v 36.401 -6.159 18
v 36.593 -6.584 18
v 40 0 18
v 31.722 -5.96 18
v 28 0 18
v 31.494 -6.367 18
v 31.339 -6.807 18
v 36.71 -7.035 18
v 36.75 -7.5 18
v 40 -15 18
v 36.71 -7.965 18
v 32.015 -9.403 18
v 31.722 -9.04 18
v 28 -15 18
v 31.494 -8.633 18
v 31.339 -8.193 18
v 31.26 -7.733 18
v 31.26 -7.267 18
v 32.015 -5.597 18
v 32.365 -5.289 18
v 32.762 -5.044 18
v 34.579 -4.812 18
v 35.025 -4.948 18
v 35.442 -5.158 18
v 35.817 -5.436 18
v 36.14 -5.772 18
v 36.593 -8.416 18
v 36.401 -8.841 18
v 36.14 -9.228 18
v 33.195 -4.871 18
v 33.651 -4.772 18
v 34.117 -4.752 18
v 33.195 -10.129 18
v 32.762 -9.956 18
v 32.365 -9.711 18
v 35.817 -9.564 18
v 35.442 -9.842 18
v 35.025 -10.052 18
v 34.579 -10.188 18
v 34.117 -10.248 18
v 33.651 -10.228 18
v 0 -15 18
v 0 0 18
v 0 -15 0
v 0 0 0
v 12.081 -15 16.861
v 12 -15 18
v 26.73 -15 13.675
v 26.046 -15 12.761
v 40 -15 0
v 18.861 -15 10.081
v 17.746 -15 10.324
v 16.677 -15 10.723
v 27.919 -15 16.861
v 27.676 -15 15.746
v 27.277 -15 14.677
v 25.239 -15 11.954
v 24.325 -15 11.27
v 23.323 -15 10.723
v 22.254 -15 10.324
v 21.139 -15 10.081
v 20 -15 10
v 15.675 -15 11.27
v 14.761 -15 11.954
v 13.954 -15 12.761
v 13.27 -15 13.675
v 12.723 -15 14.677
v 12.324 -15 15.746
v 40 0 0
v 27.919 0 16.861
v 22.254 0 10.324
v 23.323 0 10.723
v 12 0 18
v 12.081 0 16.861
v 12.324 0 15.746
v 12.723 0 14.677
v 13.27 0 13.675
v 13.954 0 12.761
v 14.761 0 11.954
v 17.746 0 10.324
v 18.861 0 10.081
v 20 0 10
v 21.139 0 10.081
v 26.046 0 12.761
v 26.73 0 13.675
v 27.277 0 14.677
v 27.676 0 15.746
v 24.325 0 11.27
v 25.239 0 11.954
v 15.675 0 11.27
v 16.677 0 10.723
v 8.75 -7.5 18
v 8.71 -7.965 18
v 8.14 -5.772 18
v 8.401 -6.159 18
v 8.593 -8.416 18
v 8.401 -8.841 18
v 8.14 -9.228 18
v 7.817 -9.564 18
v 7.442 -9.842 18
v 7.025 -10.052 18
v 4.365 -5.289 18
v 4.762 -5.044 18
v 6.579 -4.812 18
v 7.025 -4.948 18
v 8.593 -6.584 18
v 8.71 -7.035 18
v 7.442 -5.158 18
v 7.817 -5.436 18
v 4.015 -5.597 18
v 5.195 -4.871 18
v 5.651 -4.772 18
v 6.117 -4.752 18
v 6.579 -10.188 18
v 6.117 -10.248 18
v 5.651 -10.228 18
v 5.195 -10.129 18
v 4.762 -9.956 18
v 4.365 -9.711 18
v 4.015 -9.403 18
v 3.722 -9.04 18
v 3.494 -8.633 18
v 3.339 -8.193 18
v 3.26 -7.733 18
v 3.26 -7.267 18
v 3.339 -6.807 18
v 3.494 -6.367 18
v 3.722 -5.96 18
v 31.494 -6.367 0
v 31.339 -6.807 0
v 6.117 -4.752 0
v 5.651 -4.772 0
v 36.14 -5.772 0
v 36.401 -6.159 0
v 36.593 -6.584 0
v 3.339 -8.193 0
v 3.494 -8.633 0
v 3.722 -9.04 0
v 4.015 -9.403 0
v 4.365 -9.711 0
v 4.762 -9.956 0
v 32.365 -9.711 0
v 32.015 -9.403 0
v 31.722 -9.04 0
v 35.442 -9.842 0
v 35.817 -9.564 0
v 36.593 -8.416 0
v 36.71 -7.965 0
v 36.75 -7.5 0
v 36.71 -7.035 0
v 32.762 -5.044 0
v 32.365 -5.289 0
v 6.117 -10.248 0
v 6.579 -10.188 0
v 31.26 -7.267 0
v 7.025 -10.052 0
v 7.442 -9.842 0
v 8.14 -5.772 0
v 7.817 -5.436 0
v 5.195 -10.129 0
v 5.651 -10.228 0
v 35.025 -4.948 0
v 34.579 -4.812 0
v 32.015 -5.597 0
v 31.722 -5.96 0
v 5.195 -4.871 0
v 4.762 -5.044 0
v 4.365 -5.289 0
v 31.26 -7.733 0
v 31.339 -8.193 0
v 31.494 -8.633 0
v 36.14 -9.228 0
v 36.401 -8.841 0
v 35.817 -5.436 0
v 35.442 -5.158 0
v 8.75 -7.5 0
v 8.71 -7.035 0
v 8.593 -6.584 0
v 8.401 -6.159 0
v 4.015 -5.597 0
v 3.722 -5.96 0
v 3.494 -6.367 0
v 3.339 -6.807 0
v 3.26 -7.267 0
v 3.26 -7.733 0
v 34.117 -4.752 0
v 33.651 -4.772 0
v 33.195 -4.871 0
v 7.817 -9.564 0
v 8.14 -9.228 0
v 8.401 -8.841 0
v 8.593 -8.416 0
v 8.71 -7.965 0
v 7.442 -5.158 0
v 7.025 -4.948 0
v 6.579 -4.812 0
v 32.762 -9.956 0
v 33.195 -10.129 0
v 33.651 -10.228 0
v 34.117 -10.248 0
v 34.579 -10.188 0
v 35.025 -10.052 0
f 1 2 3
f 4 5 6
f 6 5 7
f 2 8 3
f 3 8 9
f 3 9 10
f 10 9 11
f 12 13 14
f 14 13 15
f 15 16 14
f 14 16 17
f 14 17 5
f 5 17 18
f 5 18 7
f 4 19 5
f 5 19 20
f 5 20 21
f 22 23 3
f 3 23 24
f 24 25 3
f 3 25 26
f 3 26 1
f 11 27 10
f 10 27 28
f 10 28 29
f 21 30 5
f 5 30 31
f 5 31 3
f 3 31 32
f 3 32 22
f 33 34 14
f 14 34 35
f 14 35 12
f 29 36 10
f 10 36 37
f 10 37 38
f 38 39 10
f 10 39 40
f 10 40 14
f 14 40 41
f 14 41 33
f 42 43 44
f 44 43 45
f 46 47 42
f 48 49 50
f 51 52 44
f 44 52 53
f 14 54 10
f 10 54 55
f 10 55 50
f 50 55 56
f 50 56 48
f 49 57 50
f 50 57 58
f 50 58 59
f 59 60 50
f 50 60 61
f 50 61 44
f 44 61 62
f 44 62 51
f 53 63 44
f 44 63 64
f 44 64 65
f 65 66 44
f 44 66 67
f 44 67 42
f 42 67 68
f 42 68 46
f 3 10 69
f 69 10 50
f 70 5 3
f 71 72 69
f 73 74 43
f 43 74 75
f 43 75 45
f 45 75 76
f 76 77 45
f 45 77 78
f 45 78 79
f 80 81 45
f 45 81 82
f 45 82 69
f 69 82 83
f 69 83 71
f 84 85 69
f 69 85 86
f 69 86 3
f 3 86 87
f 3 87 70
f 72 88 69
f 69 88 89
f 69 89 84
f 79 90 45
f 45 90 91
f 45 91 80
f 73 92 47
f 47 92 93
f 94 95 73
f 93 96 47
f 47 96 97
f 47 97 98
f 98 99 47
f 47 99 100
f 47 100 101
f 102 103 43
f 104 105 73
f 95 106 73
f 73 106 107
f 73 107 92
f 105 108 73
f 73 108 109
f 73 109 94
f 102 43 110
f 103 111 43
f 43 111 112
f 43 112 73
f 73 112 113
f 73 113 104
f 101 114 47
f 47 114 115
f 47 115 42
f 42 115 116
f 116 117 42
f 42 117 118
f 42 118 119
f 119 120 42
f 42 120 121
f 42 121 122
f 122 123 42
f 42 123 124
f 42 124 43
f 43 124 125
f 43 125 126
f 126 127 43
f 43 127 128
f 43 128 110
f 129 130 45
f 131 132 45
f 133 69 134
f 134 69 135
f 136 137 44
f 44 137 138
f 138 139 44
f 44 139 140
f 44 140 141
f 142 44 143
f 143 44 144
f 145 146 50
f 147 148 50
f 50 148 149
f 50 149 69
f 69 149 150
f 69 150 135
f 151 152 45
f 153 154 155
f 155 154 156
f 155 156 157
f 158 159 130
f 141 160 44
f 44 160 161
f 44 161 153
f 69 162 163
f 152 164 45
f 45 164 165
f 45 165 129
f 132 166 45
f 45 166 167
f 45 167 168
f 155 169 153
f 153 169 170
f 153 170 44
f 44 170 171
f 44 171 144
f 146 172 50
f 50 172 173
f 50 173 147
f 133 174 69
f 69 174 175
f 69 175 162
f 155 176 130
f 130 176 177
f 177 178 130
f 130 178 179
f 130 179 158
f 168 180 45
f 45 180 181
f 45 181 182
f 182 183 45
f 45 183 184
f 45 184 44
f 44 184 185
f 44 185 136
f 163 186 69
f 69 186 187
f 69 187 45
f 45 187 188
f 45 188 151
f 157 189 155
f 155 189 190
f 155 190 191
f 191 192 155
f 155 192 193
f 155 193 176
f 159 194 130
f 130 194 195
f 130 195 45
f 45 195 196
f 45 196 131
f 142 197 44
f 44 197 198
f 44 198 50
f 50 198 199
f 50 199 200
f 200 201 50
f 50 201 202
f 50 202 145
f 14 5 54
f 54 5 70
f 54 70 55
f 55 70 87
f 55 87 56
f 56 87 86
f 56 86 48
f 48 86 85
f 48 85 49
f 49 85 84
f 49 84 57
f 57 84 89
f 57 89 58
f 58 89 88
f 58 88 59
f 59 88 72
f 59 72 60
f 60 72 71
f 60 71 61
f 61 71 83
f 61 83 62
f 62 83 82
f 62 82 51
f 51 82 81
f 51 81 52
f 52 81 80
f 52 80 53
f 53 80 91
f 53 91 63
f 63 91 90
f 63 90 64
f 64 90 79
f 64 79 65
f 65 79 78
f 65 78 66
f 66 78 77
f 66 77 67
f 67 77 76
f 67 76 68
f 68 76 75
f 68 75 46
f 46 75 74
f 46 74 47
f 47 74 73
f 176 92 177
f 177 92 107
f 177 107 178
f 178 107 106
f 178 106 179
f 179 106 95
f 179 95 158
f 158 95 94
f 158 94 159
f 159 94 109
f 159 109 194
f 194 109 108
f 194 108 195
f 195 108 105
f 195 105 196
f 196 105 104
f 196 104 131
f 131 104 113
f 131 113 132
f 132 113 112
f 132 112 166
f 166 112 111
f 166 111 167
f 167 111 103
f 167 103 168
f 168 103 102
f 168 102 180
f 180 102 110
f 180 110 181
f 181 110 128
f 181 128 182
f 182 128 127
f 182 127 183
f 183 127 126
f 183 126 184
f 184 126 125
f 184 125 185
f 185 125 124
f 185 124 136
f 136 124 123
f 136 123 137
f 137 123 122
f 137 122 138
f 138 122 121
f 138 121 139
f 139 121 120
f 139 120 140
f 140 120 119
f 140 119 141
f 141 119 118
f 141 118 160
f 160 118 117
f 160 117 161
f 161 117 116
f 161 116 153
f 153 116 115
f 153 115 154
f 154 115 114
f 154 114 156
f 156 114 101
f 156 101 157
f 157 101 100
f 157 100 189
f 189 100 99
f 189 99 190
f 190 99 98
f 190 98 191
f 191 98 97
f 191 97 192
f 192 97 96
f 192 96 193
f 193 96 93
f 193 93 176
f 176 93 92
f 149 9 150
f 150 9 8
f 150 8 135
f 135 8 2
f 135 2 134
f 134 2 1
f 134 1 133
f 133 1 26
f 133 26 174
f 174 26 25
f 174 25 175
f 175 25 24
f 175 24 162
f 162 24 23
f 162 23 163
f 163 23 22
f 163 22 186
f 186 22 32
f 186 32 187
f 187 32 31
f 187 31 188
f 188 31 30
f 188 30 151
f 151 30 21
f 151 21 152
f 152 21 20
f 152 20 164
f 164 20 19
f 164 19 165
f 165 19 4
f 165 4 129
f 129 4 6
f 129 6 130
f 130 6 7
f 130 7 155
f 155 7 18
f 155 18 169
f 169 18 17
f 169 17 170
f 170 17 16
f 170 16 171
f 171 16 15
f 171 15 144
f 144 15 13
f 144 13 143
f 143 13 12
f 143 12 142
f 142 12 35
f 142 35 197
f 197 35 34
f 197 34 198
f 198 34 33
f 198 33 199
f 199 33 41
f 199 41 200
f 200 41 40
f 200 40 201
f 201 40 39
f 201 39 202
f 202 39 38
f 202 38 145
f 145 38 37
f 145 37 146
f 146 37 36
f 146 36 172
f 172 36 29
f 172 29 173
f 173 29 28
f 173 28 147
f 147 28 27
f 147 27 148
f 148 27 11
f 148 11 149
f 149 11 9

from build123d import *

# Parameters (mm, degrees)
SKETCH_1_W          = 40
SKETCH_1_H          = 15
EXTRUDE_1_DEPTH     = 18
SKETCH_2_R          = 8
CUT_EXTRUDE_1_DEPTH = 15
SKETCH_4_R          = 2.75
CUT_EXTRUDE_2_DEPTH = 47.357307946


with BuildPart() as part:
    # 草图1 → 凸台-拉伸1 (new body)
    with BuildSketch(Plane.XY):
        with Locations((20, -7.5)):
            Rectangle(SKETCH_1_W, SKETCH_1_H)
    extrude(amount=EXTRUDE_1_DEPTH)

    # 草图2 → 切除-拉伸1 (cut)
    with BuildSketch(Plane(origin=(0, 0, 0), x_dir=(1, 0, 0), z_dir=(0, 1, 0))):
        with Locations((20, -18)):
            Circle(SKETCH_2_R)
    extrude(amount=-CUT_EXTRUDE_1_DEPTH, mode=Mode.SUBTRACT)

    # 草图4 → 切除-拉伸2 (cut, through all)
    with BuildSketch(Plane.XY.offset(18)):
        with Locations((34, -7.5)):
            Circle(SKETCH_4_R)
        with Locations((6, -7.5)):
            Circle(SKETCH_4_R)
    extrude(amount=-CUT_EXTRUDE_2_DEPTH, mode=Mode.SUBTRACT)


solid = part.part
